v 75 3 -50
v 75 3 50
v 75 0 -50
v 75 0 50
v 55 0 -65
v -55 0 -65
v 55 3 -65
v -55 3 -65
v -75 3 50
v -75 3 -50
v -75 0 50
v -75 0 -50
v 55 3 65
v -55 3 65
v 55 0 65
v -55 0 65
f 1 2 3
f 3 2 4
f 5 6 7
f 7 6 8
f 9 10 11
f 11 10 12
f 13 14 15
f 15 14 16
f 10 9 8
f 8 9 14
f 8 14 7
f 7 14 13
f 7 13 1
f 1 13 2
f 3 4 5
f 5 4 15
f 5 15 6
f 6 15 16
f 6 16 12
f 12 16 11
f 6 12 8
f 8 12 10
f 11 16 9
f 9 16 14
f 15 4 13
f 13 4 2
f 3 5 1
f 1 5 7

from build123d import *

# Parameters (mm, degrees)
SKETCH1_W           = 150
SKETCH1_H           = 130
BOSS_EXTRUDE1_DEPTH = 3
CUT_EXTRUDE1_DEPTH  = 100.292497199


with BuildPart() as part:
    # Sketch1 → Boss-Extrude1 (new body)
    with BuildSketch(Plane(origin=(0, 0, 0), x_dir=(1, 0, 0), z_dir=(0, 1, 0))):
        Rectangle(SKETCH1_W, SKETCH1_H)
    extrude(amount=BOSS_EXTRUDE1_DEPTH)

    # Sketch2 → Cut-Extrude1 (cut, through all)
    with BuildSketch(Plane(origin=(0, 3, 0), x_dir=(1, 0, 0), z_dir=(0, 1, 0))):
        Polygon((-55, 65), (-75, 50), (-75, 65), align=None)
        Polygon((-75, -50), (-55, -65), (-75, -65), align=None)
        Polygon((75, -50), (55, -65), (75, -65), align=None)
        Polygon((55, 65), (75, 50), (75, 65), align=None)
    extrude(amount=-CUT_EXTRUDE1_DEPTH, mode=Mode.SUBTRACT)


solid = part.part
